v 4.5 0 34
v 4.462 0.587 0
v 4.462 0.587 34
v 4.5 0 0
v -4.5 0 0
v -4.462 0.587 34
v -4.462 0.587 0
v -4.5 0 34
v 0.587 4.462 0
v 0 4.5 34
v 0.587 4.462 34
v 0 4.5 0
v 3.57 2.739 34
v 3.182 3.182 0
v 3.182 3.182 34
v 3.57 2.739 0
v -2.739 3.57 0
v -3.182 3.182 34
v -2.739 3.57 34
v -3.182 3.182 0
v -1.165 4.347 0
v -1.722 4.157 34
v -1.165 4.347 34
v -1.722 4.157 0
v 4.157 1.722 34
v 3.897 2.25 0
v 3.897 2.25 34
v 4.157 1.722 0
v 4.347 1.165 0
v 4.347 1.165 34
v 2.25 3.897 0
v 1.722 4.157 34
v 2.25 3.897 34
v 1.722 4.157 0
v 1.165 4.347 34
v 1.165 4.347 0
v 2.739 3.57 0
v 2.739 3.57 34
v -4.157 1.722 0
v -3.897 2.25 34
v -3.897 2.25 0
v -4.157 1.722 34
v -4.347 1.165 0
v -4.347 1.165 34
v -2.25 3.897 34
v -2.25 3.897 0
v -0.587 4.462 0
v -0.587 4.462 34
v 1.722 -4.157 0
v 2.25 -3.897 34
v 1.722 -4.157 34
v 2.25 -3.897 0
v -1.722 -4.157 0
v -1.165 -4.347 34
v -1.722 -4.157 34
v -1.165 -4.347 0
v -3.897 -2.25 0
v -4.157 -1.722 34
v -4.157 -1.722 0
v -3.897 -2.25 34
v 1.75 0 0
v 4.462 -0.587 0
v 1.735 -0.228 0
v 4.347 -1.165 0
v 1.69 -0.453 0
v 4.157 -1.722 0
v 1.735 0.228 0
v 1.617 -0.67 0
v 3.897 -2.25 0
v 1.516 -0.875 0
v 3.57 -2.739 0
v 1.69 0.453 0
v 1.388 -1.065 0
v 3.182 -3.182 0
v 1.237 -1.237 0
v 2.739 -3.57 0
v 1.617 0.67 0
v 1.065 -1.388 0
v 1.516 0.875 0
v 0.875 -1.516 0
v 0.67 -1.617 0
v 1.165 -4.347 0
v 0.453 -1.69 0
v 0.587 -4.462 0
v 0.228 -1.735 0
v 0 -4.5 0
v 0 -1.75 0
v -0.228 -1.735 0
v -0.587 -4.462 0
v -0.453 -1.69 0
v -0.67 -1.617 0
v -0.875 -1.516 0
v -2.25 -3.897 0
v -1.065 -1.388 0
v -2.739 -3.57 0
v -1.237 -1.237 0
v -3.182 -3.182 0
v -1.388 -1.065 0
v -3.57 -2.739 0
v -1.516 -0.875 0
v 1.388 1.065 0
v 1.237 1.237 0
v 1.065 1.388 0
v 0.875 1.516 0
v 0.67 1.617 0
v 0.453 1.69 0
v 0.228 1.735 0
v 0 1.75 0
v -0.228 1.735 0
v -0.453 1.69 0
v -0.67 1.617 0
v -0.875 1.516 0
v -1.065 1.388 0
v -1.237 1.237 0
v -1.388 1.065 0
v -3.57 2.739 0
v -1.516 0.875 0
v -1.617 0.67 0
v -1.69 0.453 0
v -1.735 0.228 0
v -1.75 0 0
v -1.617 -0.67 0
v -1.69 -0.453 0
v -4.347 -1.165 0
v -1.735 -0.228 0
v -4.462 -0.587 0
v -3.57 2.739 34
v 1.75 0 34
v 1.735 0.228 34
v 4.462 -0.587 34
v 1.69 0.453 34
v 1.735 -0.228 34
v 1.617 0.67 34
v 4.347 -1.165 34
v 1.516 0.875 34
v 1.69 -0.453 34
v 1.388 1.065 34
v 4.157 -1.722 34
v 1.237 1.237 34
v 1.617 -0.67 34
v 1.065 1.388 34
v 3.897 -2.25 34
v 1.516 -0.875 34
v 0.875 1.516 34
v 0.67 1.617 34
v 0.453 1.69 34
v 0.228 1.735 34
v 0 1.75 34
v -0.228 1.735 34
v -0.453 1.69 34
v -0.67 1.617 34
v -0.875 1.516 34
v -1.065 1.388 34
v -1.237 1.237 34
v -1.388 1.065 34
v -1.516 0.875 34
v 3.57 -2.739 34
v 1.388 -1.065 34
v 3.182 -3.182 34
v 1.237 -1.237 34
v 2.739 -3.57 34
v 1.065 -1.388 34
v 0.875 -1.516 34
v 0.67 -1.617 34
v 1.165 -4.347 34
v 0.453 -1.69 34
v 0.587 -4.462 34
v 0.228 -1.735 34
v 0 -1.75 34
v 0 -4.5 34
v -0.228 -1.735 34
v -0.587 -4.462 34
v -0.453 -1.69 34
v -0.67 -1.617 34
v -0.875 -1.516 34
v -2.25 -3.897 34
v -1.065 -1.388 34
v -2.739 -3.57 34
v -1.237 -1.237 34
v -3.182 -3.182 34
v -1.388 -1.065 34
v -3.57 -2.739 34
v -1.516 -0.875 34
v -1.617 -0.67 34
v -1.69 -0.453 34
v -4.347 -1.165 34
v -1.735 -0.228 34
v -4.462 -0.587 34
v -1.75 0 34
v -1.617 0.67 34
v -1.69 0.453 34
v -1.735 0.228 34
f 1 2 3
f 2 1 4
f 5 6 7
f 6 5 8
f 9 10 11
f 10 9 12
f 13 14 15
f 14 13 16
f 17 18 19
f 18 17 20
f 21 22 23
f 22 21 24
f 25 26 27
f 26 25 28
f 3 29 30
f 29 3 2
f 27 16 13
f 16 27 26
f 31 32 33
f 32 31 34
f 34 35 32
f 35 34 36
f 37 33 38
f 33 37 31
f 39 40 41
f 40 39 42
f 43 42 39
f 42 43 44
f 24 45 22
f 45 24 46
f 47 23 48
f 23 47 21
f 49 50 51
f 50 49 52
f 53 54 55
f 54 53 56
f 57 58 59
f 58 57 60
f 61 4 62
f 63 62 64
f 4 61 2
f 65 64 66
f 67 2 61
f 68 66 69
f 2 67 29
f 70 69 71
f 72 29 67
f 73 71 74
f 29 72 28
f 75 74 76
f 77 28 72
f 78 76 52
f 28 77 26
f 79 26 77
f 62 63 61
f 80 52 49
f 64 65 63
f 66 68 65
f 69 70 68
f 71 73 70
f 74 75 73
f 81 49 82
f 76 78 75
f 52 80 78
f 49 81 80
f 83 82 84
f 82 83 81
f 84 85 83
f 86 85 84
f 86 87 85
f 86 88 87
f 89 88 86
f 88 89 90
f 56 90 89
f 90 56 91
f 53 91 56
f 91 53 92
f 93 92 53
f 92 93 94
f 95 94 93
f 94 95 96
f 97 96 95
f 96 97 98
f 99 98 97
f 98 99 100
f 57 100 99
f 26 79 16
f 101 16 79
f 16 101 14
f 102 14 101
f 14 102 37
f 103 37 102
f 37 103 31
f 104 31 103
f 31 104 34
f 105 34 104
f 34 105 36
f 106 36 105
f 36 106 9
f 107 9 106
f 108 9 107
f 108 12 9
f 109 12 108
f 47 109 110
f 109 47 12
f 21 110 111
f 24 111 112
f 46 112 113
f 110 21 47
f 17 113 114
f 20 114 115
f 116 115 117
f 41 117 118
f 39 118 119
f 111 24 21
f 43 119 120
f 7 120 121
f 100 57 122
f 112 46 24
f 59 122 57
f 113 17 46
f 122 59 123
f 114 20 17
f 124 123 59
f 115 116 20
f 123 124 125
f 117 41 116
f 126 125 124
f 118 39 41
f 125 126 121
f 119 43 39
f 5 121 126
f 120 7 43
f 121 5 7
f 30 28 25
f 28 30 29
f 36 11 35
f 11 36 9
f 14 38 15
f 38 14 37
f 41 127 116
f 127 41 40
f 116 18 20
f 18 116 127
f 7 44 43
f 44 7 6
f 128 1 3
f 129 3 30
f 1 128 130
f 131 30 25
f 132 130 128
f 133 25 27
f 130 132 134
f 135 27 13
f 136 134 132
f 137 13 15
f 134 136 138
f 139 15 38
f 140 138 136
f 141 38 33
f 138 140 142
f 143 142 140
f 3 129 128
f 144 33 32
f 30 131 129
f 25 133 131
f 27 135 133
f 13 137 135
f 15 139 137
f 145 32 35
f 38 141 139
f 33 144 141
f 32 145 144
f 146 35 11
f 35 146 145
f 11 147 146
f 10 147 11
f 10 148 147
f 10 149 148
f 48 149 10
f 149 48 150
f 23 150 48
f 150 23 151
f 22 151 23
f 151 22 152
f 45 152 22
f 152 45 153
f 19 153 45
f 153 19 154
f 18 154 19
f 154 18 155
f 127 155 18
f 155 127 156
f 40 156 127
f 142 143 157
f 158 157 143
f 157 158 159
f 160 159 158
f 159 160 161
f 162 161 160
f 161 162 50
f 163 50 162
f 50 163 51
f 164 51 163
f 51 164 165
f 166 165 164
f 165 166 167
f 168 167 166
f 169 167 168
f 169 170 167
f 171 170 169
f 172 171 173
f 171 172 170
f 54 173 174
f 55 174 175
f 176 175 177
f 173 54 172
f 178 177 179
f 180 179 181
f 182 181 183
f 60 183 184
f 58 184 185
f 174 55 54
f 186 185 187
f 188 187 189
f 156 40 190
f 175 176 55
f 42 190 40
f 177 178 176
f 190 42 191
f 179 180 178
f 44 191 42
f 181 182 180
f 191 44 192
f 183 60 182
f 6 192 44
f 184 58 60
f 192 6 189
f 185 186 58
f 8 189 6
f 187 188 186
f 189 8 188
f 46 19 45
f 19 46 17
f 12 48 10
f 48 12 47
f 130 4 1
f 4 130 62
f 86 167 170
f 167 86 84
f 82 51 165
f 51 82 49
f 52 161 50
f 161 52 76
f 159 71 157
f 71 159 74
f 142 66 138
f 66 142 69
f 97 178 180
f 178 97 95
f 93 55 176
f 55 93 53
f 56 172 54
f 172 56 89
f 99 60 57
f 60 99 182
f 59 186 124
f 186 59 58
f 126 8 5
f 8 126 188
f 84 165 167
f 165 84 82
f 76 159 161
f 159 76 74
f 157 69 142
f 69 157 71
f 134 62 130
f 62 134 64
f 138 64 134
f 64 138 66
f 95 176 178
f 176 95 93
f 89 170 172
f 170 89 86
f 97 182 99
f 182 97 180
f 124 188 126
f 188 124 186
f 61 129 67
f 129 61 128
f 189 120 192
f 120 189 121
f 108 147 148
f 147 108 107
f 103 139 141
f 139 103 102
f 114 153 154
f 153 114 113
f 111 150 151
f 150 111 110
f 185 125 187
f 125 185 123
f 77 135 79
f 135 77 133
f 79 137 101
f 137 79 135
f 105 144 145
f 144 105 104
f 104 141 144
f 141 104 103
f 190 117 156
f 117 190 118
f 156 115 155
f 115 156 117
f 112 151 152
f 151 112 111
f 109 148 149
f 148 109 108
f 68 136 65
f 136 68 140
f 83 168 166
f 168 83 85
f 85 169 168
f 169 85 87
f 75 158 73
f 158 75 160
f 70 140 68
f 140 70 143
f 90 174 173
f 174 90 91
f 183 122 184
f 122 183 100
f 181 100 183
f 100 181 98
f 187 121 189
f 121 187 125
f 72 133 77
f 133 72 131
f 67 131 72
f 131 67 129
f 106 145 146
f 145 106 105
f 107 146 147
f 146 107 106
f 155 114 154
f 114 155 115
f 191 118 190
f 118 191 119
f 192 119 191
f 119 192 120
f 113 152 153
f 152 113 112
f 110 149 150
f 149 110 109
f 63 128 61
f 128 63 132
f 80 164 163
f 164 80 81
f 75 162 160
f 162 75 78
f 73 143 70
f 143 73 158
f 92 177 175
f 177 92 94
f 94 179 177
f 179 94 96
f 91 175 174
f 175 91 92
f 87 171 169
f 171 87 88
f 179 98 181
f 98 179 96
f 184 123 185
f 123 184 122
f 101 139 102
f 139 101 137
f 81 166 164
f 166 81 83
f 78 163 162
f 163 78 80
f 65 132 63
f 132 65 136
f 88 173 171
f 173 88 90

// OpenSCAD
// Gen-DZ — TOP STANDOFF (2026-11-02 pedestal frame): stator top face -> spider arm, on the 3 arm frame rods. Print x3.
// Same Ø as the old frame standoffs (standoff_od) because the rotor-B rim spins right beside it.
include <parameters.scad>;
$fn = 48;
difference() {
    cylinder(d=standoff_od, h=top_standoff_h);
    translate([0, 0, -0.1]) cylinder(d=m3_clear, h=top_standoff_h + 0.2);
}
